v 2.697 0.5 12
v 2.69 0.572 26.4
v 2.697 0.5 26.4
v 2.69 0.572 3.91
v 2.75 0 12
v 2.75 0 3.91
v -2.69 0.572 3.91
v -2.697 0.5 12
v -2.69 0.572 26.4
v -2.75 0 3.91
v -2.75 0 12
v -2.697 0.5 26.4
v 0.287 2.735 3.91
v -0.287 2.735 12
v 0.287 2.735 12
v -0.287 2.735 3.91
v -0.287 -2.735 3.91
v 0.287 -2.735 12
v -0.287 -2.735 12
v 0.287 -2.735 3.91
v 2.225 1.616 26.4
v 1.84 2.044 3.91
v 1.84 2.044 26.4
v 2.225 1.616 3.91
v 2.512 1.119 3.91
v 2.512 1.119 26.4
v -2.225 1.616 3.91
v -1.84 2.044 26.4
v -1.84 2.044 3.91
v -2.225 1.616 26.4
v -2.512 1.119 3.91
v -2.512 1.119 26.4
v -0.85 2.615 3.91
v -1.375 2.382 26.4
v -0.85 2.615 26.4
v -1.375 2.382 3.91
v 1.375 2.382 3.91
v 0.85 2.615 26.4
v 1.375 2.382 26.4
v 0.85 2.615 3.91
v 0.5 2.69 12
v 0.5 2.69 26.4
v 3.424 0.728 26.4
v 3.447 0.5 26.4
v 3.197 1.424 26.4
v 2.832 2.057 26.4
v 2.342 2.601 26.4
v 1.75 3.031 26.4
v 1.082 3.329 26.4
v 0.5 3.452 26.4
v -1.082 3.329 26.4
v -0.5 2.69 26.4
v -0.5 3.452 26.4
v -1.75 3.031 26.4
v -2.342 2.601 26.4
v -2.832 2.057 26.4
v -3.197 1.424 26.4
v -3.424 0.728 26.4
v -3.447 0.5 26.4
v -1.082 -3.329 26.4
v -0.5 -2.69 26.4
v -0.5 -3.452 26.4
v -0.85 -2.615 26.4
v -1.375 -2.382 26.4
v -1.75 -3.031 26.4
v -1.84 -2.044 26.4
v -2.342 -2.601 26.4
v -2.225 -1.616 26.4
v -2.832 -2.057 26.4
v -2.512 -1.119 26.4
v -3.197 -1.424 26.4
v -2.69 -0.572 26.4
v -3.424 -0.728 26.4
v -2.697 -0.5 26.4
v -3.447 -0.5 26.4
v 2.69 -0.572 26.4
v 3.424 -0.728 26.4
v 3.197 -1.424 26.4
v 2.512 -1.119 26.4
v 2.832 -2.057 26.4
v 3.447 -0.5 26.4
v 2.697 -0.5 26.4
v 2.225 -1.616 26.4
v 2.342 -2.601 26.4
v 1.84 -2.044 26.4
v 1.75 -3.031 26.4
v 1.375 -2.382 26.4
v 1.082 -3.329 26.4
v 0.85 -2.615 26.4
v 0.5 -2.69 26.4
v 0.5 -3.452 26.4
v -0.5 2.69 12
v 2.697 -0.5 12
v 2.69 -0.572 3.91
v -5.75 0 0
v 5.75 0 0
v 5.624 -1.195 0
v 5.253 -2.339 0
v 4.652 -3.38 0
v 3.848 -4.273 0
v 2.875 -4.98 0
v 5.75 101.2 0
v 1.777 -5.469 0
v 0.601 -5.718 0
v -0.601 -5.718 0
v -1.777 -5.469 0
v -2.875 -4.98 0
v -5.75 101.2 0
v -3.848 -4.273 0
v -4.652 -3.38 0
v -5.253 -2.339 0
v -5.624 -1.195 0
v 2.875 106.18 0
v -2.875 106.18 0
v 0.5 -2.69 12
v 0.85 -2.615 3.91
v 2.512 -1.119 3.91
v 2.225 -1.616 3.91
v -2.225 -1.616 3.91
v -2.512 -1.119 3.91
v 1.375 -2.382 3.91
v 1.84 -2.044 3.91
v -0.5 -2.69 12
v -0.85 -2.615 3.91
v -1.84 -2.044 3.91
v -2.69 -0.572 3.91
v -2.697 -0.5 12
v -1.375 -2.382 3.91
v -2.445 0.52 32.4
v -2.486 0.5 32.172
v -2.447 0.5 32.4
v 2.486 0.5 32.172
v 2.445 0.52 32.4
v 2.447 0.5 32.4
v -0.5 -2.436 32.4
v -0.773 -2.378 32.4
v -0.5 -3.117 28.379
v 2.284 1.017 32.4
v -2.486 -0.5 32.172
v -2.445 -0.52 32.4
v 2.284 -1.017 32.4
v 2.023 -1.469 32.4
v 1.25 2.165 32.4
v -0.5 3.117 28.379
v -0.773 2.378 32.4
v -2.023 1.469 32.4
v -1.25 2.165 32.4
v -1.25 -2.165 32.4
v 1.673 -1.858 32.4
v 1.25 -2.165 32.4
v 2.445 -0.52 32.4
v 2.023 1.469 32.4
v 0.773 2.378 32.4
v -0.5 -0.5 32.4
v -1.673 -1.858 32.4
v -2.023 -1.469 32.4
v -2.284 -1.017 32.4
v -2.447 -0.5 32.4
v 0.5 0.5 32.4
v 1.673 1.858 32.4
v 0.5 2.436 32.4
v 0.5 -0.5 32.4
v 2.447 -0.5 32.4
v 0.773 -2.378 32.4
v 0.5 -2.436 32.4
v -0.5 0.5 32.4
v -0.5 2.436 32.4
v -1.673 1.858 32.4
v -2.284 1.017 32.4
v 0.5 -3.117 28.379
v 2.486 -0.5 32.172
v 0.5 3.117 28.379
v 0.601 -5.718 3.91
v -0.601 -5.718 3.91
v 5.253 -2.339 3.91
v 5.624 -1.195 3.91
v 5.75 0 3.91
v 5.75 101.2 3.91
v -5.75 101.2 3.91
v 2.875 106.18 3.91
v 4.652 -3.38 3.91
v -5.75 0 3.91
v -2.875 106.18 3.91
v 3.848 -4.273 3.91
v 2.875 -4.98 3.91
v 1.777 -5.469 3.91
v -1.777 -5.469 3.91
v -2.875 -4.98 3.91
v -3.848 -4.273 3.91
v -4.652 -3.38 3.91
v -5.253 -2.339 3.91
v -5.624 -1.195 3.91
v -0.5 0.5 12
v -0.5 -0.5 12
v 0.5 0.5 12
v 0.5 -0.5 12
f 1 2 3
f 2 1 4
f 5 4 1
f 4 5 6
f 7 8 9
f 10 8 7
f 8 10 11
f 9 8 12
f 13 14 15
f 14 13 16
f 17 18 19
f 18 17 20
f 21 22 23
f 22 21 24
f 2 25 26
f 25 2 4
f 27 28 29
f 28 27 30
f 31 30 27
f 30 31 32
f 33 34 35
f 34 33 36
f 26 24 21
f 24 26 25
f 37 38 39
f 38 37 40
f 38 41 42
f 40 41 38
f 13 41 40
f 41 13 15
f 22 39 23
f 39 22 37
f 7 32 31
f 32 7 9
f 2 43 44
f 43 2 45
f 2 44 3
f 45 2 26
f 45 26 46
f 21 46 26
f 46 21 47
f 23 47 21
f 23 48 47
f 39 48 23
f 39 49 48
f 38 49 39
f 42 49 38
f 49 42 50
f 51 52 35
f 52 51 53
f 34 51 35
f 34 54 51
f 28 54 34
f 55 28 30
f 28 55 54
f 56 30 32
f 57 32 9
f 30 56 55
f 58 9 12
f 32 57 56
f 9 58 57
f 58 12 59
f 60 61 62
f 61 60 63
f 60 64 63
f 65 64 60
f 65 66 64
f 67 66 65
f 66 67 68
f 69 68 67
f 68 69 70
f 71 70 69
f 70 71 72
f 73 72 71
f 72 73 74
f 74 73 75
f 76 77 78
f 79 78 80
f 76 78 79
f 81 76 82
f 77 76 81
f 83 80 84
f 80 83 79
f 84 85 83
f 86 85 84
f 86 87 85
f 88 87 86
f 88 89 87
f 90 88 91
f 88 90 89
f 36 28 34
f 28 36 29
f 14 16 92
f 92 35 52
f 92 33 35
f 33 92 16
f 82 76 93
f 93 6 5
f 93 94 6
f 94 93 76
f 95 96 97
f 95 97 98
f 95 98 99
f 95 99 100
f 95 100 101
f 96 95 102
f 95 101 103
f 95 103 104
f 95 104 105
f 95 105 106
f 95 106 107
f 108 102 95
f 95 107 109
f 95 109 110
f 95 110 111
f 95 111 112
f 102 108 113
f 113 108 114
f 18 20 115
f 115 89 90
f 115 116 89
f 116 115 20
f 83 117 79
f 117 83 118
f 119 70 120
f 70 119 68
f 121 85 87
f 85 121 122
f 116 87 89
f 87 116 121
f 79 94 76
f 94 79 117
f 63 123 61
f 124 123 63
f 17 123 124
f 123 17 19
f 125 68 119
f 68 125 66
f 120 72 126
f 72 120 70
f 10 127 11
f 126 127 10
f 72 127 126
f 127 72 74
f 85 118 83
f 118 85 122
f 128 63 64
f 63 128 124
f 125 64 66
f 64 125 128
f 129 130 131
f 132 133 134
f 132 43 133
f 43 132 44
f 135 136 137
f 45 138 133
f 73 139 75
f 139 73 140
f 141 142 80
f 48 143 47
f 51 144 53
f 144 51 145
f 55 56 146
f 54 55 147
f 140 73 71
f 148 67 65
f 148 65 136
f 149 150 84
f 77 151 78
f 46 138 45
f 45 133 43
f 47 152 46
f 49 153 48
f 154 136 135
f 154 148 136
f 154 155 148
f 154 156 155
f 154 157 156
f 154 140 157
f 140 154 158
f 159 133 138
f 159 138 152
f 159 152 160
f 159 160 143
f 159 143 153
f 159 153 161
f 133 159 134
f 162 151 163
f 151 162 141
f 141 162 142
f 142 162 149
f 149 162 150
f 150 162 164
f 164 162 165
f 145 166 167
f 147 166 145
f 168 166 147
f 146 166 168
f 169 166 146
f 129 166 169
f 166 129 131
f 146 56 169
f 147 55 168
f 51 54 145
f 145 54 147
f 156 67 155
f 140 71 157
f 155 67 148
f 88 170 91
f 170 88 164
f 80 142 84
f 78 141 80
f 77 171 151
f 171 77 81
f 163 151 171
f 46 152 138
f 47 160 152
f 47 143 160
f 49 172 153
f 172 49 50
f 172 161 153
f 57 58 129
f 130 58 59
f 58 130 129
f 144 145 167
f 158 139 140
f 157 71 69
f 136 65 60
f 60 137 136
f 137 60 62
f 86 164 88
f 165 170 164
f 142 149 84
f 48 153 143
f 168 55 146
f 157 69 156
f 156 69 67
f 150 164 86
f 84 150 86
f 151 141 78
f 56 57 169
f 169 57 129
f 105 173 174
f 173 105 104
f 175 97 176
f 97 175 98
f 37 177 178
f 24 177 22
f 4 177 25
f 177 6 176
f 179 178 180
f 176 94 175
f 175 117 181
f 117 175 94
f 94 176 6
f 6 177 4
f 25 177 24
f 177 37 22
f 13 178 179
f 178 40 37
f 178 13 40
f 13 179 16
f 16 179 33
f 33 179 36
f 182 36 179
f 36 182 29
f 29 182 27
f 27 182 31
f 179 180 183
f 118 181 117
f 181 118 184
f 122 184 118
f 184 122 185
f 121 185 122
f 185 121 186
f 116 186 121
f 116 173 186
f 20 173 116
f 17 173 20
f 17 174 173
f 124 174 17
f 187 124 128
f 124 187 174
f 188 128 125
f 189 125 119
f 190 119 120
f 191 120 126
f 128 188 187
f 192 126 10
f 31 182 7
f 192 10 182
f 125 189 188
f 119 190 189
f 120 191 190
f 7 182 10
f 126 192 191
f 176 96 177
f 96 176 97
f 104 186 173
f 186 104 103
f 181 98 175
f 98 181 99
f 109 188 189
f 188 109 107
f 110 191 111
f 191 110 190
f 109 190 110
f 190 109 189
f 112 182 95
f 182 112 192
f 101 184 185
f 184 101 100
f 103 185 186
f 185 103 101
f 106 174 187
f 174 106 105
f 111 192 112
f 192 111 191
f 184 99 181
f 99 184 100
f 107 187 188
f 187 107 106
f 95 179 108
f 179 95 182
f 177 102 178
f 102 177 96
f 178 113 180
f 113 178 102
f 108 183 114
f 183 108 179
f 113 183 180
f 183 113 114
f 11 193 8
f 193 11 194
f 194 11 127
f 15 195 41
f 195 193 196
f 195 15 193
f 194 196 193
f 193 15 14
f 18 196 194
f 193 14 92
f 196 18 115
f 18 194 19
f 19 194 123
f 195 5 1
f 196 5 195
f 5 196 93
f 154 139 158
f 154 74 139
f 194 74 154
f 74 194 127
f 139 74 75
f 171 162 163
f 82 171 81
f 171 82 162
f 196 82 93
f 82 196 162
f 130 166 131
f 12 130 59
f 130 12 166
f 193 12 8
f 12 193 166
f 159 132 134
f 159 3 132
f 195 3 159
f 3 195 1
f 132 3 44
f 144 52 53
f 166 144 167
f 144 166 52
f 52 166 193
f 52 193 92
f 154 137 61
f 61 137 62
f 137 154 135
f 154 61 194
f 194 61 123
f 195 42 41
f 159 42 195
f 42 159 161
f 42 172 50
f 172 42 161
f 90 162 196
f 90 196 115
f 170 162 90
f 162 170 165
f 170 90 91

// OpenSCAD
module snap(){
    cylinder(d=5.5,h=26.4,$fn=30);
    translate([0,0,26.4]) cylinder(d1=7, d2=5, h=6, $fn=30);
    cylinder(d=11.5,h=3.91,$fn=30);
    translate([-11.5/2, 0, 0])    cube([11.5,101.2,3.91]);
    translate([0,101.2,0]) cylinder(d=11.5,h=3.91,$fn=6);
    
//    translate([.75,-6,25.5]) rotate([0,0,90]) cube([12,1.5,21]);
}

difference(){
    snap();
    
    translate([-6,-.5,12]) cube([12,1,21]);
    
    translate([.5,-6,12]) rotate([0,0,90]) cube([12,1,21]);
    
}
